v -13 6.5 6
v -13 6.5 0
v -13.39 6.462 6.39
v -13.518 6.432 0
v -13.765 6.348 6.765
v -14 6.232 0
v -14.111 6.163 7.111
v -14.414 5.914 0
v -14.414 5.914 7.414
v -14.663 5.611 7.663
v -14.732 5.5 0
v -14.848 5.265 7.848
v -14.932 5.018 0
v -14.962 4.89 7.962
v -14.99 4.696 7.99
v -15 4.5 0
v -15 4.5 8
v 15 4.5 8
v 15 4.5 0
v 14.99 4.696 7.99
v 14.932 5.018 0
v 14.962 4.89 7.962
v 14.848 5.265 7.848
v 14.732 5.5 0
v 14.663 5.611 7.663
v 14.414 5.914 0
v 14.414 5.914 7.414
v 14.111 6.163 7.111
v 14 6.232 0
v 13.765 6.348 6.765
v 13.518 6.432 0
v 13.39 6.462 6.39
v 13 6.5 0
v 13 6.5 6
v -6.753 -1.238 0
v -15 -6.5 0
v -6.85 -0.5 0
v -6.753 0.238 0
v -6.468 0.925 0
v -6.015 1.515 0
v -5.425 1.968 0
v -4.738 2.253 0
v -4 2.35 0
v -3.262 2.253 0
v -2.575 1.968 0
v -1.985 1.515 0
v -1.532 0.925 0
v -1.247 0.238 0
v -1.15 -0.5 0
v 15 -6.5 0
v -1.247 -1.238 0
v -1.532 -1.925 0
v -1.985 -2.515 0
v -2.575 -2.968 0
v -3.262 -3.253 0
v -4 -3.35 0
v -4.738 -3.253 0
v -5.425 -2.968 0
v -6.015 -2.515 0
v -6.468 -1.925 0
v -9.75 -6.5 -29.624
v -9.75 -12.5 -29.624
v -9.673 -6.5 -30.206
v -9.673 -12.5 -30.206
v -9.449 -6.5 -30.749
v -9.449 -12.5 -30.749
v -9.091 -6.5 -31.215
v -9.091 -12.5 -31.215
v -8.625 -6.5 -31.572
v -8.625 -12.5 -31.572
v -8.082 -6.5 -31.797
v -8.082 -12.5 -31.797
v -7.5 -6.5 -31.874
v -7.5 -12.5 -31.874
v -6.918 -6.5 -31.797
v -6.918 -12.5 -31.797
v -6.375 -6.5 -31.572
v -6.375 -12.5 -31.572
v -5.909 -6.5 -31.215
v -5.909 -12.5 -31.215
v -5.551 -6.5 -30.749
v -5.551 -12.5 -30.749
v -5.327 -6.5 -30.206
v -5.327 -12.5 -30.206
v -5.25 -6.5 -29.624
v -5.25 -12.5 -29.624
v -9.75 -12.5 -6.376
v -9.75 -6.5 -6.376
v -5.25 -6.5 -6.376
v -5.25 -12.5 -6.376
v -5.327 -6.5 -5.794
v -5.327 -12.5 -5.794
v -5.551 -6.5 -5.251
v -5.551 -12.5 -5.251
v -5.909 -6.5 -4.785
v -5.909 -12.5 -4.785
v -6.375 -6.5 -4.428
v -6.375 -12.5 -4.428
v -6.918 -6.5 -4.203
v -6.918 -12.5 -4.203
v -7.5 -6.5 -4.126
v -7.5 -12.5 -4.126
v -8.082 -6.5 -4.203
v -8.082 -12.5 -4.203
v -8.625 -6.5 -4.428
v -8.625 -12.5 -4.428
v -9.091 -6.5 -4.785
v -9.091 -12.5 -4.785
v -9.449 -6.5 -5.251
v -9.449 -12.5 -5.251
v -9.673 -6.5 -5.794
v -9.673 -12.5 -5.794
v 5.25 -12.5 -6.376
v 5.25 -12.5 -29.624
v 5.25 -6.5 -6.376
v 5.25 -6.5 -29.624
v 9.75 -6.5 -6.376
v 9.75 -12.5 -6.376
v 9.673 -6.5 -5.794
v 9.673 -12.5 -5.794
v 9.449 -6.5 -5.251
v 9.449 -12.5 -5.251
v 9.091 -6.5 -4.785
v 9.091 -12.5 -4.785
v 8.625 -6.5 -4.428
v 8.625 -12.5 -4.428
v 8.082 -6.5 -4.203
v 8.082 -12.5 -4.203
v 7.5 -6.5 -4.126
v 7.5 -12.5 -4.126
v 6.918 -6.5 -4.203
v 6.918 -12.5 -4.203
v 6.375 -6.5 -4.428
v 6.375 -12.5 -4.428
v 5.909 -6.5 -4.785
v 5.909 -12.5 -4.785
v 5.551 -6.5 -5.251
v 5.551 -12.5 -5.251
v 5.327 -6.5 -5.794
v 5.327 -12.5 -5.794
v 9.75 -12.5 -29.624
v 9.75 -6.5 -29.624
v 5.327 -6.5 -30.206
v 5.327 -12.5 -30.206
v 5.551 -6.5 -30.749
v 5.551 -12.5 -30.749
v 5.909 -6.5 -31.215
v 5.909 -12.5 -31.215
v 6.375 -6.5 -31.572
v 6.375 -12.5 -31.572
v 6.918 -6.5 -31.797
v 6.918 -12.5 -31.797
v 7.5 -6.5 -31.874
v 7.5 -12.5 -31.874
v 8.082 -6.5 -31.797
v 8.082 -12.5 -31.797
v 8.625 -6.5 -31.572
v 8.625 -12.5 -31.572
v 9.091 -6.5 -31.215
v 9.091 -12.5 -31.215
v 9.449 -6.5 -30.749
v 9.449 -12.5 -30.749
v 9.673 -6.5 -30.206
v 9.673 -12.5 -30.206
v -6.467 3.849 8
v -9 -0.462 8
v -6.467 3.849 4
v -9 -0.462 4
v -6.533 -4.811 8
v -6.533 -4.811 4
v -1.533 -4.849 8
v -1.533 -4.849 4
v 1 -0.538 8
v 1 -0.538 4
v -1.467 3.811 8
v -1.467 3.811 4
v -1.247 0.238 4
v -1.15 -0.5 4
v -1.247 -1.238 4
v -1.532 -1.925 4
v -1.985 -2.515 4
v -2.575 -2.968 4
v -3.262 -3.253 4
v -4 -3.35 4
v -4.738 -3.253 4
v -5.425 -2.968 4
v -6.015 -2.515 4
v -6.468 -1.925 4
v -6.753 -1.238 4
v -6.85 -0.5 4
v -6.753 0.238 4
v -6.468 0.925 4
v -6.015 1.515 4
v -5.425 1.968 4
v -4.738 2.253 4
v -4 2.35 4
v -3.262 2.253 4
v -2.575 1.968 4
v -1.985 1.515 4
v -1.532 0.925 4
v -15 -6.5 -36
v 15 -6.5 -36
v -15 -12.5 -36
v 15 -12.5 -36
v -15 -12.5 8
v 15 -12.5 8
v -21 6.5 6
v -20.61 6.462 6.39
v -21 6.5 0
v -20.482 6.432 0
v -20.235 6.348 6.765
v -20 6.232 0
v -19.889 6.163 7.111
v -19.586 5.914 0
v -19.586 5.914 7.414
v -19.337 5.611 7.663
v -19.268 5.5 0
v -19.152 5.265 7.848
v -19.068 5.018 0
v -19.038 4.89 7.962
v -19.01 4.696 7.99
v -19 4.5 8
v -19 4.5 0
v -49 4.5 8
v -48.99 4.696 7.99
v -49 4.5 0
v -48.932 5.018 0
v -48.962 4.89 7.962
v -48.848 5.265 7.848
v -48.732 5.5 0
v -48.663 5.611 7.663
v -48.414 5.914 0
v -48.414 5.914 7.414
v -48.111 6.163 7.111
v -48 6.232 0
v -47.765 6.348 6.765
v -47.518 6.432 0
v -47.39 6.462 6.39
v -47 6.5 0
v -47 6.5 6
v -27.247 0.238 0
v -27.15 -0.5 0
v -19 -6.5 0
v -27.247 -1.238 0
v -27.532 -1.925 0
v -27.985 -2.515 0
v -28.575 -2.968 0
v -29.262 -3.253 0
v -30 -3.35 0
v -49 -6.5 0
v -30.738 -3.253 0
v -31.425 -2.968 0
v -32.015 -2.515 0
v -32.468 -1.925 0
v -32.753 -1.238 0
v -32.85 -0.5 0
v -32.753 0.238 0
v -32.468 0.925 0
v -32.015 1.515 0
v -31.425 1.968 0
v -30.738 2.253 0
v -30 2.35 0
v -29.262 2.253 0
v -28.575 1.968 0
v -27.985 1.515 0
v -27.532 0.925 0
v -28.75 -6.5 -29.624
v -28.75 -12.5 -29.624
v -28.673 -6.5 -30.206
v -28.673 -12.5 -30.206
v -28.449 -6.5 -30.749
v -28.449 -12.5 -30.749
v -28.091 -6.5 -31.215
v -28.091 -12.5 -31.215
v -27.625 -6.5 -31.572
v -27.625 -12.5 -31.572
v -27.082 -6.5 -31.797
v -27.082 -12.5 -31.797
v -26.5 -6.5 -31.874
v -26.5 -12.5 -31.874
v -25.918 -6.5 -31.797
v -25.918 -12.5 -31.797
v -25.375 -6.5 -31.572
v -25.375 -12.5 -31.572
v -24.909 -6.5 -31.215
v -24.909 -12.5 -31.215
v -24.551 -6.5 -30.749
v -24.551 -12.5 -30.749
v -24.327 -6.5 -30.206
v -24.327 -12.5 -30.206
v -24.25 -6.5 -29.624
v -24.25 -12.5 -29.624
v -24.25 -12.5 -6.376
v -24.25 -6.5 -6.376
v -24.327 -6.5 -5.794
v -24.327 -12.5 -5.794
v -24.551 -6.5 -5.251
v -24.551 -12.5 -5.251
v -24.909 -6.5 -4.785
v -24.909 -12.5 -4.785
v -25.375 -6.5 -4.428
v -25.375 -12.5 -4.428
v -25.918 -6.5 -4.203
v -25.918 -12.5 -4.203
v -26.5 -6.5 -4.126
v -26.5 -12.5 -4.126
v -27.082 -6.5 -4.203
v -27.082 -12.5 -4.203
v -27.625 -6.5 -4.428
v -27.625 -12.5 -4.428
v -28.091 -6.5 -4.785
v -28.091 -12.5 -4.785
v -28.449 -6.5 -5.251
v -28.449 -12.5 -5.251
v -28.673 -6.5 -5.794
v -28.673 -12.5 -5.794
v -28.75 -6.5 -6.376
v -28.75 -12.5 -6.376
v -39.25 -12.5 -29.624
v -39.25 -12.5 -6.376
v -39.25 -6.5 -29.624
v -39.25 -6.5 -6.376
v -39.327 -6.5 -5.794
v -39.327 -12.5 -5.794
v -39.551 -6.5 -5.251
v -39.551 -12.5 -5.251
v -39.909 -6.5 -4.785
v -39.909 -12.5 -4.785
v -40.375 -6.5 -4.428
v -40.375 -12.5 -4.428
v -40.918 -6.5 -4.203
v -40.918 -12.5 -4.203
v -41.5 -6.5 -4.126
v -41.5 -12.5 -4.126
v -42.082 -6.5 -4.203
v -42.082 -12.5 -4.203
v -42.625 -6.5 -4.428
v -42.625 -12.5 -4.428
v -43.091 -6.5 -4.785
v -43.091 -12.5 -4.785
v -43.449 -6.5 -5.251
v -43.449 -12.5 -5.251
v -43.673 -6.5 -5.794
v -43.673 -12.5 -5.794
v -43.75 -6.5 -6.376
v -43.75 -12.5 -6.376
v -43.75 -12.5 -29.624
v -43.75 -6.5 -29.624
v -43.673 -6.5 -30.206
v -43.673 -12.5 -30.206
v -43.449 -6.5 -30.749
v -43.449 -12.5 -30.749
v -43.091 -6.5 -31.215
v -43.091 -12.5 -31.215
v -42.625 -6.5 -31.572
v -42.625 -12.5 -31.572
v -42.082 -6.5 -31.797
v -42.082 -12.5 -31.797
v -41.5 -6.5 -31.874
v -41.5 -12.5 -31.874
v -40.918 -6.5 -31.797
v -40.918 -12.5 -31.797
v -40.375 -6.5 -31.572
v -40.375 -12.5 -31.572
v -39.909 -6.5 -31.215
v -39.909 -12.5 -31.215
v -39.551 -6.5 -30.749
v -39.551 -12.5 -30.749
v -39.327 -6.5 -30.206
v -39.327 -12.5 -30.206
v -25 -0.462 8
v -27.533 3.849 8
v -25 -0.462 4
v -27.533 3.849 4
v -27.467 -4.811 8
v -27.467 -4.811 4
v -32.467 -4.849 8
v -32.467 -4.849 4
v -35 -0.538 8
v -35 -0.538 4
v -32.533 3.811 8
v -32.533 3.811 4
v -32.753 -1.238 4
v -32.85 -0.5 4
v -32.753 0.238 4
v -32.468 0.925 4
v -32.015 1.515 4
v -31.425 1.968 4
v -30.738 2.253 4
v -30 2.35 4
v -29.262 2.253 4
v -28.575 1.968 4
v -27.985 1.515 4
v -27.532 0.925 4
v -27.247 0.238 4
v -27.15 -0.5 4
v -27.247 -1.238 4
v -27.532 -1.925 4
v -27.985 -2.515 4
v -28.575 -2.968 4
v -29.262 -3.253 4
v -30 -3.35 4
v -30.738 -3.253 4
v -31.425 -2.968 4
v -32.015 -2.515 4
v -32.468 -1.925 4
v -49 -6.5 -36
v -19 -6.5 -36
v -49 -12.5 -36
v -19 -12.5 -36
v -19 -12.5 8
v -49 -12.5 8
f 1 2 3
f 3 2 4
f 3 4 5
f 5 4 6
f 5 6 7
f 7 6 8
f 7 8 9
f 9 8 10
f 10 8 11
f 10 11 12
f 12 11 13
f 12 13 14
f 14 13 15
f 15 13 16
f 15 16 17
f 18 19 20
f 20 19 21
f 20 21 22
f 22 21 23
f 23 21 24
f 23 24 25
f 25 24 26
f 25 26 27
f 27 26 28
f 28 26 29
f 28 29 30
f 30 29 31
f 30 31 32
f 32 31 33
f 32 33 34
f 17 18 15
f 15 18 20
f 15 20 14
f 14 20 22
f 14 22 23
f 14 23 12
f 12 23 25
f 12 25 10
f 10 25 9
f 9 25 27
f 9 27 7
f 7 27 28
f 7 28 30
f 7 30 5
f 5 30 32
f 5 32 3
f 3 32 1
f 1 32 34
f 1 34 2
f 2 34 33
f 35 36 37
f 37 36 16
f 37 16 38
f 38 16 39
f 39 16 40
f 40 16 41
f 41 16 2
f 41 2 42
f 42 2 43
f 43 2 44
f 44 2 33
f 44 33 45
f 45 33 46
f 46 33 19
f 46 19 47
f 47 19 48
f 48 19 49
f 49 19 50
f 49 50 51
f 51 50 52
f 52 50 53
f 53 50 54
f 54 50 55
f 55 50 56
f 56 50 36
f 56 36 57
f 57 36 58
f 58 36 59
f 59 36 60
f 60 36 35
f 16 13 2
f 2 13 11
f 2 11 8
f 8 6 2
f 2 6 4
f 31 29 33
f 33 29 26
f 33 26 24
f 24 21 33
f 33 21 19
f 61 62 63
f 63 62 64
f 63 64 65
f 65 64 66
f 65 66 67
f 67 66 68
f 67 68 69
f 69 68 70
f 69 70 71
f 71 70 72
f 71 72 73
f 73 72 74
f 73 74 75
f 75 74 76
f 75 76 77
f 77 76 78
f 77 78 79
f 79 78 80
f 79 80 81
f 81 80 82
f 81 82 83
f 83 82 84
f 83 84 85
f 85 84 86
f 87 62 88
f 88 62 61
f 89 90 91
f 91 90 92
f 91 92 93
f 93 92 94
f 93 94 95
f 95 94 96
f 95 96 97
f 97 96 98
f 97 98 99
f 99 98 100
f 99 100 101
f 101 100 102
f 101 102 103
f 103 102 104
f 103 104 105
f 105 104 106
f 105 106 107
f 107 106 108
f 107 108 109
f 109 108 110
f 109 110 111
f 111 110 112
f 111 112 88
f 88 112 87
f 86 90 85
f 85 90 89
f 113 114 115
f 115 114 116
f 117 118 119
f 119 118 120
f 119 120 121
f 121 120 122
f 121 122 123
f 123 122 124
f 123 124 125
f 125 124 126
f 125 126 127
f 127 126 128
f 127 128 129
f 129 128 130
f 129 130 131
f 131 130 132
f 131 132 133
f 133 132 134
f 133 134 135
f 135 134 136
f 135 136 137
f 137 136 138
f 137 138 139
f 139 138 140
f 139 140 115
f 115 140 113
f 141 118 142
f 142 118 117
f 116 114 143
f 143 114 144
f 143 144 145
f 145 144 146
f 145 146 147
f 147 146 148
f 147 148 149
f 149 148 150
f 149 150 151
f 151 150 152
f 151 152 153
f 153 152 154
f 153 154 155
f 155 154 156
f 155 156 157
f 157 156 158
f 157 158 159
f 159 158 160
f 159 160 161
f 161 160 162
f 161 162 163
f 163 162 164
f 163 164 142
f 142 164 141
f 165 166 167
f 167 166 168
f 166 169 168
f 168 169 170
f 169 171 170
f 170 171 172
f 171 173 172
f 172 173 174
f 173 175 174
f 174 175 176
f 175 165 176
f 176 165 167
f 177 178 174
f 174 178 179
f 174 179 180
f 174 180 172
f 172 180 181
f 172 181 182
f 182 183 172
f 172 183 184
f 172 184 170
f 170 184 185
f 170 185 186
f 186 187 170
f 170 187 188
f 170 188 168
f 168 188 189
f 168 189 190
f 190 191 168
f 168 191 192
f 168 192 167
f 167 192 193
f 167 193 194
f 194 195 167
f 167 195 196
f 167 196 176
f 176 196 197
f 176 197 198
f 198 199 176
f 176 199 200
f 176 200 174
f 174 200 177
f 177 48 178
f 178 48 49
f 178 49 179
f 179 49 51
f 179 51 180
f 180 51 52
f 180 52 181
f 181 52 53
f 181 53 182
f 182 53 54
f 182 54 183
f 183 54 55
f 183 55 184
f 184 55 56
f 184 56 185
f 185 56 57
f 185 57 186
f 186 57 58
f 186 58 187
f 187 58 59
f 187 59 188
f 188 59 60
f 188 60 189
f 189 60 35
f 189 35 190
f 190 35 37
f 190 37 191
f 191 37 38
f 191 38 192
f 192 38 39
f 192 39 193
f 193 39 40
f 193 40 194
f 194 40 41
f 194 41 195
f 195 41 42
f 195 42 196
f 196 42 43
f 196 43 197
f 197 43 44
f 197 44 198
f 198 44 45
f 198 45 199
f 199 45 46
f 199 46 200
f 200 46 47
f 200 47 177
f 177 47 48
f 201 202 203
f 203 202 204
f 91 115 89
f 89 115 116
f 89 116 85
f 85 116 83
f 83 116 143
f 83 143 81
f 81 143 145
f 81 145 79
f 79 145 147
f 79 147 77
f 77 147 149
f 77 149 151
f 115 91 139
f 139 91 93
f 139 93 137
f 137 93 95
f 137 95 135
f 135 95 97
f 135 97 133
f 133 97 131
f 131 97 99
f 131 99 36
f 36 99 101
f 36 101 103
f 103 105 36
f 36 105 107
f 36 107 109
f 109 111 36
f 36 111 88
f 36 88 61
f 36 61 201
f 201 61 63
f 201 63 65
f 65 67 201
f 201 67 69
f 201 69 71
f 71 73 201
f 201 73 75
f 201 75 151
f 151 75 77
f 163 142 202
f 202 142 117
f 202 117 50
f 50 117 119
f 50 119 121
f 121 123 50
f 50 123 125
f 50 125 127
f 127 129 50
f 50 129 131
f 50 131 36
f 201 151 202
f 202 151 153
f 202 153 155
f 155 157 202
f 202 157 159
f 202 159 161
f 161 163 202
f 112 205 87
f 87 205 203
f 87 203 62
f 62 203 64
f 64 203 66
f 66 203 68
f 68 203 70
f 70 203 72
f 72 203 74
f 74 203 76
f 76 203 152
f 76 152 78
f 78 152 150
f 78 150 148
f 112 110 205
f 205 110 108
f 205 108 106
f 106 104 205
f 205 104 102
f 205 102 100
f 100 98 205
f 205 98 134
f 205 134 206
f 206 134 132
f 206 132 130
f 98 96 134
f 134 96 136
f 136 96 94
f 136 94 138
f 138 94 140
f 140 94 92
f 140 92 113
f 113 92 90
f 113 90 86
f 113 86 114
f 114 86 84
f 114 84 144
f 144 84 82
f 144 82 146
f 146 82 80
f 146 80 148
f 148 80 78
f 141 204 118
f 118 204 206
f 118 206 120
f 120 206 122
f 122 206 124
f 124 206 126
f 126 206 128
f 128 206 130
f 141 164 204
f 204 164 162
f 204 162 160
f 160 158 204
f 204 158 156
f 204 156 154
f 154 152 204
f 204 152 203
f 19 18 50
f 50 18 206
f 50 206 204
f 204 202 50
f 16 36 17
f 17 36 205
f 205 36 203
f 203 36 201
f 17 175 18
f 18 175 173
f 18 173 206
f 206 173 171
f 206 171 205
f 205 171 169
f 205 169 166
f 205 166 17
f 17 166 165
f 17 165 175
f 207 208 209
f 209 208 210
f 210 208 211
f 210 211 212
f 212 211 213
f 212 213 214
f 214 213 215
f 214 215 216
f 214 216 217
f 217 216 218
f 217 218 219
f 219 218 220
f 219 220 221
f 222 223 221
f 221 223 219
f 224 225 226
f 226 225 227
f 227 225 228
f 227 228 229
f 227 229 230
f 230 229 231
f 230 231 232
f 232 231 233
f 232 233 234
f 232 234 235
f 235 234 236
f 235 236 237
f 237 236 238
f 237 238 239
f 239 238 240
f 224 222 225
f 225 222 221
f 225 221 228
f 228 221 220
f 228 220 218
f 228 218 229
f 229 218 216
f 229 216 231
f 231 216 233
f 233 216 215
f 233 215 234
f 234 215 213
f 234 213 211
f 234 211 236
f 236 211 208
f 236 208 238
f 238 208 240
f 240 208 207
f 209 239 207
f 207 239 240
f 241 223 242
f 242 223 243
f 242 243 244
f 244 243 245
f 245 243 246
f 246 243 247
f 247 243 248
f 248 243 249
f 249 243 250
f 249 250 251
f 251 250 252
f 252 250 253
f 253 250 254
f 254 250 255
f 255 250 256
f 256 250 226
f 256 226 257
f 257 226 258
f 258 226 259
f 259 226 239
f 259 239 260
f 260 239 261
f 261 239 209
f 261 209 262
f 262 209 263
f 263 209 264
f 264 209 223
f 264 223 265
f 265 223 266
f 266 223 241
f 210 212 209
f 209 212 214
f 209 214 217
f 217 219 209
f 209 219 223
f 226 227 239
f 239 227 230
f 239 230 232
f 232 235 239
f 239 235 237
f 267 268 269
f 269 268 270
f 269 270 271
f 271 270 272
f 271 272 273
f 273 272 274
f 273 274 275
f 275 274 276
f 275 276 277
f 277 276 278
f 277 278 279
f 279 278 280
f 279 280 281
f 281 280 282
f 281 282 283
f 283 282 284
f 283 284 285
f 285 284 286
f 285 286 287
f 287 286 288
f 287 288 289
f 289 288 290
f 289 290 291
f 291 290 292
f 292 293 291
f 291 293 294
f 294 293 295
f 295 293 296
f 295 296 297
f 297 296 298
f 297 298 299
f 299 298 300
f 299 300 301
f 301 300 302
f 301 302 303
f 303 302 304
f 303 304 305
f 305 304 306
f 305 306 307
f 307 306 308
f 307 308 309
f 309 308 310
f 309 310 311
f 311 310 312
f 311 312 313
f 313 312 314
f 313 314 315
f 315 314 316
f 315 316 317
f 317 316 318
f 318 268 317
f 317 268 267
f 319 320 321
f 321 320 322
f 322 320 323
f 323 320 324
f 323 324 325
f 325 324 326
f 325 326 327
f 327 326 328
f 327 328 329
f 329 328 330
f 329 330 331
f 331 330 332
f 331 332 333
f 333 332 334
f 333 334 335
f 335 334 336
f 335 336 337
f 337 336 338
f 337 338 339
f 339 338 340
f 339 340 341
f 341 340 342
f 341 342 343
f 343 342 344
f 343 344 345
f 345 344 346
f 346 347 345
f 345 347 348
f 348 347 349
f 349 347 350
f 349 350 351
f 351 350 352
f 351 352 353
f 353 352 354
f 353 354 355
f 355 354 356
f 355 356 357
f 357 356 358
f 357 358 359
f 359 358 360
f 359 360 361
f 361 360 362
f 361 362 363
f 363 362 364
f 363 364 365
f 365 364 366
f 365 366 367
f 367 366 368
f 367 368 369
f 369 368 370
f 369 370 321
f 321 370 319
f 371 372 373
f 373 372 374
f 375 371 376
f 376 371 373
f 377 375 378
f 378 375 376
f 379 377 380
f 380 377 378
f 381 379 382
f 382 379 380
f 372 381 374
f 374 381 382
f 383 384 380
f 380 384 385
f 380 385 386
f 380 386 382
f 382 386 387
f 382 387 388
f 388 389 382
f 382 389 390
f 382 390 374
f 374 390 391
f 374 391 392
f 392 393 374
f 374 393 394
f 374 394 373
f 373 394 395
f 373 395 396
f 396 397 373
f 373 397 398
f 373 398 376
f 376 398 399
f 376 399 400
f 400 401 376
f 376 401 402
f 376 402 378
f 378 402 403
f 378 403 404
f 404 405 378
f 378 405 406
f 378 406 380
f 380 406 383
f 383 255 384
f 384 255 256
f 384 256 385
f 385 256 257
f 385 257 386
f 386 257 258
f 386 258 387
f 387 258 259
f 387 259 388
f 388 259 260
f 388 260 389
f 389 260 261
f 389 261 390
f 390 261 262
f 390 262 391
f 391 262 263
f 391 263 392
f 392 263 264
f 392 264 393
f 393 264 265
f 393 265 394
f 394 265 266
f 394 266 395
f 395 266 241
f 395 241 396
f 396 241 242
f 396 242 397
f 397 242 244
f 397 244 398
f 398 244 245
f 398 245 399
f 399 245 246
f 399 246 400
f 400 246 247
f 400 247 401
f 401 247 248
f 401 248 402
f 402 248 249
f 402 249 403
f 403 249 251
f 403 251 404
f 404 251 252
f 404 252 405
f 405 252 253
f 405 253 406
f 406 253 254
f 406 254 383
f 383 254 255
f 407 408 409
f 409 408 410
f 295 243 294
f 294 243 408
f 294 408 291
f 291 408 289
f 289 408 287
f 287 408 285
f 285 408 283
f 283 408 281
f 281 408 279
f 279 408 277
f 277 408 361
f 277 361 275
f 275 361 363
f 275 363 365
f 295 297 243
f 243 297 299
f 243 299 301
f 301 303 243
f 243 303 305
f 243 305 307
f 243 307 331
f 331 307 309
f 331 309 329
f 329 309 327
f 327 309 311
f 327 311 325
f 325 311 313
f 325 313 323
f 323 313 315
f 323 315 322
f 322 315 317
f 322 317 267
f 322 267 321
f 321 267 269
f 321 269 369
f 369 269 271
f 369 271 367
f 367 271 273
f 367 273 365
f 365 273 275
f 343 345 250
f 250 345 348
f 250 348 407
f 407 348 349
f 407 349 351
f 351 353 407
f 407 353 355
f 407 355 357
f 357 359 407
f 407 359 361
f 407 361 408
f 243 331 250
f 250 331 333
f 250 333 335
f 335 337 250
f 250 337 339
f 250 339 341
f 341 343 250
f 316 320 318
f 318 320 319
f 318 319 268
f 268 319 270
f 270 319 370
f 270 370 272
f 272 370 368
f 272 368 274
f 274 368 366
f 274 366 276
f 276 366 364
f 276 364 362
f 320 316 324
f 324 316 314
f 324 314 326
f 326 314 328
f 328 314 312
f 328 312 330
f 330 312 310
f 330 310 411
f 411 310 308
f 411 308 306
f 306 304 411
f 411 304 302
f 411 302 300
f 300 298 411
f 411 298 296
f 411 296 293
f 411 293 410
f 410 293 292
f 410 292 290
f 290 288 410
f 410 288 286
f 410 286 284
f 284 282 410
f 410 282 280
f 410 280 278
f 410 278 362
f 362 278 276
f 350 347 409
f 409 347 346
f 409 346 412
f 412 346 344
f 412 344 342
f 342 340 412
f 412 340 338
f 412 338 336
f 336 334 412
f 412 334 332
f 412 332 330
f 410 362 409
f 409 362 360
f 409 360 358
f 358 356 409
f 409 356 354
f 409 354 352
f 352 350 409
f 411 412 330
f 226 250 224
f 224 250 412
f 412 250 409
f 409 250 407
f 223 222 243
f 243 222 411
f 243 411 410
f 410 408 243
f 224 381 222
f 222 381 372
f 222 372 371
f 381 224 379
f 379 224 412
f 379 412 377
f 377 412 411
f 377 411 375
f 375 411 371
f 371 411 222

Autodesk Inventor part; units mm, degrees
ref_plane "YZ Plane" through (0, 0, 0) normal (1, 0, 0) x (0, 1, 0)
ref_plane "XZ Plane" through (0, 0, 0) normal (0, 1, 0) x (-1, 0, 0)
ref_plane "XY Plane" through (0, 0, 0) normal (0, 0, 1) x (1, 0, 0)
sketch "Sketch1" plane through (0, 0, 0) normal (0, 0, 1) x (1, 0, 0)
  line L0 (-15, 6.5) -> (15, 6.5)
  line L1 (15, 6.5) -> (15, -6.5)
  line L2 (15, -6.5) -> (-15, -6.5)
  line L3 (-15, -6.5) -> (-15, 6.5)
  line L4 (-15, 6.5) -> (15, -6.5) construction
  line L5 (15, 6.5) -> (-15, -6.5) construction
  point P0 (0, 0)
  dimension "d0" = 30
  dimension "d1" = 13
extrude "Extrusion1" add sketch "Sketch1" along normal blind 8
sketch "Sketch2" plane through (-15, -6.5, 0) normal (0, -1, 0) x (1, 0, 0)
  line L0 (0, 0) -> (0, 8) projected
  line L1 (0, 8) -> (30, 8)
  line L2 (30, 8) -> (30, -36)
  line L3 (30, -36) -> (0, -36)
  line L4 (0, -36) -> (0, 8)
  point P0 (15, 0)
  dimension "d4" = 30
  dimension "d5" = 44
extrude "Extrusion2" add sketch "Sketch2" along normal blind 6
sketch "Sketch3" plane through (0, 0, 8) normal (0, 0, 1) x (1, 0, 0)
  circle A0 centre (-4, -0.5) radius 10
  line L0 (-15, 6.5) -> (-15, -12.5) projected
  line L1 (15, -12.5) -> (-15, -12.5) projected
  point P0 (0, 0)
  dimension "d8" = 20
  dimension "d9" = 11
  dimension "d10" = 12
hole "Hole1" at (-4, -0.5, 8) direction (0, 0, -1) diameter 5.7 end through all
sketch "Sketch4" plane through (0, 0, 8) normal (0, 0, 1) x (1, 0, 0)
  circle A0 centre (-4, -0.5) radius 2.85 projected
  line L0 (-6.4669, 3.8491) -> (-1.467, 3.8109)
  line L1 (-1.467, 3.8109) -> (0.9999, -0.5382)
  line L2 (0.9999, -0.5382) -> (-1.5331, -4.8491)
  line L3 (-1.5331, -4.8491) -> (-6.533, -4.8109)
  line L4 (-6.533, -4.8109) -> (-8.9999, -0.4618)
  line L5 (-8.9999, -0.4618) -> (-6.4669, 3.8491)
  point P0 (0, 0)
  dimension "d18" = 10
sketch "Sketch5" plane through (0, 0, 8) normal (0, 0, 1) x (1, 0, 0)
  point P0 (0, 0)
extrude "Extrusion3" cut sketch "Sketch4" against normal blind 4
sketch "Sketch6" plane through (-15, -6.5, 0) normal (0, 1, 0) x (1, 0, 0)
  arc A0 (24.75, 29.6235) -> (20.25, 29.6235) centre (22.5, 29.6235) ccw
  line L0 (30, 0) -> (30, 36) projected
  line L1 (30, 18) -> (0, 18)
  line L2 (0, -8) -> (0, 36) projected
  line L3 (15, 0) -> (15, 36)
  line L4 (30, 36) -> (0, 36) projected
  arc A1 (20.25, 6.3765) -> (24.75, 6.3765) centre (22.5, 6.3765) ccw
  line L5 (24.75, 6.3765) -> (24.75, 29.6235)
  line L6 (20.25, 6.3765) -> (20.25, 29.6235)
  arc A2 (9.75, 29.6235) -> (5.25, 29.6235) centre (7.5, 29.6235) ccw
  arc A3 (5.25, 6.3765) -> (9.75, 6.3765) centre (7.5, 6.3765) ccw
  line L7 (5.25, 6.3765) -> (5.25, 29.6235)
  line L8 (9.75, 6.3765) -> (9.75, 29.6235)
  dimension "d21" = 4.5
  dimension "d22" = 7.5
extrude "Extrusion4" cut sketch "Sketch6" against normal through all contours L5 L1 L6 A0 | L5 A1 L6 L1 | L8 A3 L7 L1 | L1 L7 A2 L8
fillet "Fillet1" radius 2 3 edges at (15, 6.5, 4) (0, 6.5, 8) (-15, 6.5, 4)
ref_plane "Work Plane1" through (-17, -6.5, -36) normal (-1, 0, 0) x (0, 0, 1)
mirror "Mirror1" about plane through (-17, -6.5, -36) normal (-1, 0, 0)
properties part number "CarroXY - Batente frontal"
